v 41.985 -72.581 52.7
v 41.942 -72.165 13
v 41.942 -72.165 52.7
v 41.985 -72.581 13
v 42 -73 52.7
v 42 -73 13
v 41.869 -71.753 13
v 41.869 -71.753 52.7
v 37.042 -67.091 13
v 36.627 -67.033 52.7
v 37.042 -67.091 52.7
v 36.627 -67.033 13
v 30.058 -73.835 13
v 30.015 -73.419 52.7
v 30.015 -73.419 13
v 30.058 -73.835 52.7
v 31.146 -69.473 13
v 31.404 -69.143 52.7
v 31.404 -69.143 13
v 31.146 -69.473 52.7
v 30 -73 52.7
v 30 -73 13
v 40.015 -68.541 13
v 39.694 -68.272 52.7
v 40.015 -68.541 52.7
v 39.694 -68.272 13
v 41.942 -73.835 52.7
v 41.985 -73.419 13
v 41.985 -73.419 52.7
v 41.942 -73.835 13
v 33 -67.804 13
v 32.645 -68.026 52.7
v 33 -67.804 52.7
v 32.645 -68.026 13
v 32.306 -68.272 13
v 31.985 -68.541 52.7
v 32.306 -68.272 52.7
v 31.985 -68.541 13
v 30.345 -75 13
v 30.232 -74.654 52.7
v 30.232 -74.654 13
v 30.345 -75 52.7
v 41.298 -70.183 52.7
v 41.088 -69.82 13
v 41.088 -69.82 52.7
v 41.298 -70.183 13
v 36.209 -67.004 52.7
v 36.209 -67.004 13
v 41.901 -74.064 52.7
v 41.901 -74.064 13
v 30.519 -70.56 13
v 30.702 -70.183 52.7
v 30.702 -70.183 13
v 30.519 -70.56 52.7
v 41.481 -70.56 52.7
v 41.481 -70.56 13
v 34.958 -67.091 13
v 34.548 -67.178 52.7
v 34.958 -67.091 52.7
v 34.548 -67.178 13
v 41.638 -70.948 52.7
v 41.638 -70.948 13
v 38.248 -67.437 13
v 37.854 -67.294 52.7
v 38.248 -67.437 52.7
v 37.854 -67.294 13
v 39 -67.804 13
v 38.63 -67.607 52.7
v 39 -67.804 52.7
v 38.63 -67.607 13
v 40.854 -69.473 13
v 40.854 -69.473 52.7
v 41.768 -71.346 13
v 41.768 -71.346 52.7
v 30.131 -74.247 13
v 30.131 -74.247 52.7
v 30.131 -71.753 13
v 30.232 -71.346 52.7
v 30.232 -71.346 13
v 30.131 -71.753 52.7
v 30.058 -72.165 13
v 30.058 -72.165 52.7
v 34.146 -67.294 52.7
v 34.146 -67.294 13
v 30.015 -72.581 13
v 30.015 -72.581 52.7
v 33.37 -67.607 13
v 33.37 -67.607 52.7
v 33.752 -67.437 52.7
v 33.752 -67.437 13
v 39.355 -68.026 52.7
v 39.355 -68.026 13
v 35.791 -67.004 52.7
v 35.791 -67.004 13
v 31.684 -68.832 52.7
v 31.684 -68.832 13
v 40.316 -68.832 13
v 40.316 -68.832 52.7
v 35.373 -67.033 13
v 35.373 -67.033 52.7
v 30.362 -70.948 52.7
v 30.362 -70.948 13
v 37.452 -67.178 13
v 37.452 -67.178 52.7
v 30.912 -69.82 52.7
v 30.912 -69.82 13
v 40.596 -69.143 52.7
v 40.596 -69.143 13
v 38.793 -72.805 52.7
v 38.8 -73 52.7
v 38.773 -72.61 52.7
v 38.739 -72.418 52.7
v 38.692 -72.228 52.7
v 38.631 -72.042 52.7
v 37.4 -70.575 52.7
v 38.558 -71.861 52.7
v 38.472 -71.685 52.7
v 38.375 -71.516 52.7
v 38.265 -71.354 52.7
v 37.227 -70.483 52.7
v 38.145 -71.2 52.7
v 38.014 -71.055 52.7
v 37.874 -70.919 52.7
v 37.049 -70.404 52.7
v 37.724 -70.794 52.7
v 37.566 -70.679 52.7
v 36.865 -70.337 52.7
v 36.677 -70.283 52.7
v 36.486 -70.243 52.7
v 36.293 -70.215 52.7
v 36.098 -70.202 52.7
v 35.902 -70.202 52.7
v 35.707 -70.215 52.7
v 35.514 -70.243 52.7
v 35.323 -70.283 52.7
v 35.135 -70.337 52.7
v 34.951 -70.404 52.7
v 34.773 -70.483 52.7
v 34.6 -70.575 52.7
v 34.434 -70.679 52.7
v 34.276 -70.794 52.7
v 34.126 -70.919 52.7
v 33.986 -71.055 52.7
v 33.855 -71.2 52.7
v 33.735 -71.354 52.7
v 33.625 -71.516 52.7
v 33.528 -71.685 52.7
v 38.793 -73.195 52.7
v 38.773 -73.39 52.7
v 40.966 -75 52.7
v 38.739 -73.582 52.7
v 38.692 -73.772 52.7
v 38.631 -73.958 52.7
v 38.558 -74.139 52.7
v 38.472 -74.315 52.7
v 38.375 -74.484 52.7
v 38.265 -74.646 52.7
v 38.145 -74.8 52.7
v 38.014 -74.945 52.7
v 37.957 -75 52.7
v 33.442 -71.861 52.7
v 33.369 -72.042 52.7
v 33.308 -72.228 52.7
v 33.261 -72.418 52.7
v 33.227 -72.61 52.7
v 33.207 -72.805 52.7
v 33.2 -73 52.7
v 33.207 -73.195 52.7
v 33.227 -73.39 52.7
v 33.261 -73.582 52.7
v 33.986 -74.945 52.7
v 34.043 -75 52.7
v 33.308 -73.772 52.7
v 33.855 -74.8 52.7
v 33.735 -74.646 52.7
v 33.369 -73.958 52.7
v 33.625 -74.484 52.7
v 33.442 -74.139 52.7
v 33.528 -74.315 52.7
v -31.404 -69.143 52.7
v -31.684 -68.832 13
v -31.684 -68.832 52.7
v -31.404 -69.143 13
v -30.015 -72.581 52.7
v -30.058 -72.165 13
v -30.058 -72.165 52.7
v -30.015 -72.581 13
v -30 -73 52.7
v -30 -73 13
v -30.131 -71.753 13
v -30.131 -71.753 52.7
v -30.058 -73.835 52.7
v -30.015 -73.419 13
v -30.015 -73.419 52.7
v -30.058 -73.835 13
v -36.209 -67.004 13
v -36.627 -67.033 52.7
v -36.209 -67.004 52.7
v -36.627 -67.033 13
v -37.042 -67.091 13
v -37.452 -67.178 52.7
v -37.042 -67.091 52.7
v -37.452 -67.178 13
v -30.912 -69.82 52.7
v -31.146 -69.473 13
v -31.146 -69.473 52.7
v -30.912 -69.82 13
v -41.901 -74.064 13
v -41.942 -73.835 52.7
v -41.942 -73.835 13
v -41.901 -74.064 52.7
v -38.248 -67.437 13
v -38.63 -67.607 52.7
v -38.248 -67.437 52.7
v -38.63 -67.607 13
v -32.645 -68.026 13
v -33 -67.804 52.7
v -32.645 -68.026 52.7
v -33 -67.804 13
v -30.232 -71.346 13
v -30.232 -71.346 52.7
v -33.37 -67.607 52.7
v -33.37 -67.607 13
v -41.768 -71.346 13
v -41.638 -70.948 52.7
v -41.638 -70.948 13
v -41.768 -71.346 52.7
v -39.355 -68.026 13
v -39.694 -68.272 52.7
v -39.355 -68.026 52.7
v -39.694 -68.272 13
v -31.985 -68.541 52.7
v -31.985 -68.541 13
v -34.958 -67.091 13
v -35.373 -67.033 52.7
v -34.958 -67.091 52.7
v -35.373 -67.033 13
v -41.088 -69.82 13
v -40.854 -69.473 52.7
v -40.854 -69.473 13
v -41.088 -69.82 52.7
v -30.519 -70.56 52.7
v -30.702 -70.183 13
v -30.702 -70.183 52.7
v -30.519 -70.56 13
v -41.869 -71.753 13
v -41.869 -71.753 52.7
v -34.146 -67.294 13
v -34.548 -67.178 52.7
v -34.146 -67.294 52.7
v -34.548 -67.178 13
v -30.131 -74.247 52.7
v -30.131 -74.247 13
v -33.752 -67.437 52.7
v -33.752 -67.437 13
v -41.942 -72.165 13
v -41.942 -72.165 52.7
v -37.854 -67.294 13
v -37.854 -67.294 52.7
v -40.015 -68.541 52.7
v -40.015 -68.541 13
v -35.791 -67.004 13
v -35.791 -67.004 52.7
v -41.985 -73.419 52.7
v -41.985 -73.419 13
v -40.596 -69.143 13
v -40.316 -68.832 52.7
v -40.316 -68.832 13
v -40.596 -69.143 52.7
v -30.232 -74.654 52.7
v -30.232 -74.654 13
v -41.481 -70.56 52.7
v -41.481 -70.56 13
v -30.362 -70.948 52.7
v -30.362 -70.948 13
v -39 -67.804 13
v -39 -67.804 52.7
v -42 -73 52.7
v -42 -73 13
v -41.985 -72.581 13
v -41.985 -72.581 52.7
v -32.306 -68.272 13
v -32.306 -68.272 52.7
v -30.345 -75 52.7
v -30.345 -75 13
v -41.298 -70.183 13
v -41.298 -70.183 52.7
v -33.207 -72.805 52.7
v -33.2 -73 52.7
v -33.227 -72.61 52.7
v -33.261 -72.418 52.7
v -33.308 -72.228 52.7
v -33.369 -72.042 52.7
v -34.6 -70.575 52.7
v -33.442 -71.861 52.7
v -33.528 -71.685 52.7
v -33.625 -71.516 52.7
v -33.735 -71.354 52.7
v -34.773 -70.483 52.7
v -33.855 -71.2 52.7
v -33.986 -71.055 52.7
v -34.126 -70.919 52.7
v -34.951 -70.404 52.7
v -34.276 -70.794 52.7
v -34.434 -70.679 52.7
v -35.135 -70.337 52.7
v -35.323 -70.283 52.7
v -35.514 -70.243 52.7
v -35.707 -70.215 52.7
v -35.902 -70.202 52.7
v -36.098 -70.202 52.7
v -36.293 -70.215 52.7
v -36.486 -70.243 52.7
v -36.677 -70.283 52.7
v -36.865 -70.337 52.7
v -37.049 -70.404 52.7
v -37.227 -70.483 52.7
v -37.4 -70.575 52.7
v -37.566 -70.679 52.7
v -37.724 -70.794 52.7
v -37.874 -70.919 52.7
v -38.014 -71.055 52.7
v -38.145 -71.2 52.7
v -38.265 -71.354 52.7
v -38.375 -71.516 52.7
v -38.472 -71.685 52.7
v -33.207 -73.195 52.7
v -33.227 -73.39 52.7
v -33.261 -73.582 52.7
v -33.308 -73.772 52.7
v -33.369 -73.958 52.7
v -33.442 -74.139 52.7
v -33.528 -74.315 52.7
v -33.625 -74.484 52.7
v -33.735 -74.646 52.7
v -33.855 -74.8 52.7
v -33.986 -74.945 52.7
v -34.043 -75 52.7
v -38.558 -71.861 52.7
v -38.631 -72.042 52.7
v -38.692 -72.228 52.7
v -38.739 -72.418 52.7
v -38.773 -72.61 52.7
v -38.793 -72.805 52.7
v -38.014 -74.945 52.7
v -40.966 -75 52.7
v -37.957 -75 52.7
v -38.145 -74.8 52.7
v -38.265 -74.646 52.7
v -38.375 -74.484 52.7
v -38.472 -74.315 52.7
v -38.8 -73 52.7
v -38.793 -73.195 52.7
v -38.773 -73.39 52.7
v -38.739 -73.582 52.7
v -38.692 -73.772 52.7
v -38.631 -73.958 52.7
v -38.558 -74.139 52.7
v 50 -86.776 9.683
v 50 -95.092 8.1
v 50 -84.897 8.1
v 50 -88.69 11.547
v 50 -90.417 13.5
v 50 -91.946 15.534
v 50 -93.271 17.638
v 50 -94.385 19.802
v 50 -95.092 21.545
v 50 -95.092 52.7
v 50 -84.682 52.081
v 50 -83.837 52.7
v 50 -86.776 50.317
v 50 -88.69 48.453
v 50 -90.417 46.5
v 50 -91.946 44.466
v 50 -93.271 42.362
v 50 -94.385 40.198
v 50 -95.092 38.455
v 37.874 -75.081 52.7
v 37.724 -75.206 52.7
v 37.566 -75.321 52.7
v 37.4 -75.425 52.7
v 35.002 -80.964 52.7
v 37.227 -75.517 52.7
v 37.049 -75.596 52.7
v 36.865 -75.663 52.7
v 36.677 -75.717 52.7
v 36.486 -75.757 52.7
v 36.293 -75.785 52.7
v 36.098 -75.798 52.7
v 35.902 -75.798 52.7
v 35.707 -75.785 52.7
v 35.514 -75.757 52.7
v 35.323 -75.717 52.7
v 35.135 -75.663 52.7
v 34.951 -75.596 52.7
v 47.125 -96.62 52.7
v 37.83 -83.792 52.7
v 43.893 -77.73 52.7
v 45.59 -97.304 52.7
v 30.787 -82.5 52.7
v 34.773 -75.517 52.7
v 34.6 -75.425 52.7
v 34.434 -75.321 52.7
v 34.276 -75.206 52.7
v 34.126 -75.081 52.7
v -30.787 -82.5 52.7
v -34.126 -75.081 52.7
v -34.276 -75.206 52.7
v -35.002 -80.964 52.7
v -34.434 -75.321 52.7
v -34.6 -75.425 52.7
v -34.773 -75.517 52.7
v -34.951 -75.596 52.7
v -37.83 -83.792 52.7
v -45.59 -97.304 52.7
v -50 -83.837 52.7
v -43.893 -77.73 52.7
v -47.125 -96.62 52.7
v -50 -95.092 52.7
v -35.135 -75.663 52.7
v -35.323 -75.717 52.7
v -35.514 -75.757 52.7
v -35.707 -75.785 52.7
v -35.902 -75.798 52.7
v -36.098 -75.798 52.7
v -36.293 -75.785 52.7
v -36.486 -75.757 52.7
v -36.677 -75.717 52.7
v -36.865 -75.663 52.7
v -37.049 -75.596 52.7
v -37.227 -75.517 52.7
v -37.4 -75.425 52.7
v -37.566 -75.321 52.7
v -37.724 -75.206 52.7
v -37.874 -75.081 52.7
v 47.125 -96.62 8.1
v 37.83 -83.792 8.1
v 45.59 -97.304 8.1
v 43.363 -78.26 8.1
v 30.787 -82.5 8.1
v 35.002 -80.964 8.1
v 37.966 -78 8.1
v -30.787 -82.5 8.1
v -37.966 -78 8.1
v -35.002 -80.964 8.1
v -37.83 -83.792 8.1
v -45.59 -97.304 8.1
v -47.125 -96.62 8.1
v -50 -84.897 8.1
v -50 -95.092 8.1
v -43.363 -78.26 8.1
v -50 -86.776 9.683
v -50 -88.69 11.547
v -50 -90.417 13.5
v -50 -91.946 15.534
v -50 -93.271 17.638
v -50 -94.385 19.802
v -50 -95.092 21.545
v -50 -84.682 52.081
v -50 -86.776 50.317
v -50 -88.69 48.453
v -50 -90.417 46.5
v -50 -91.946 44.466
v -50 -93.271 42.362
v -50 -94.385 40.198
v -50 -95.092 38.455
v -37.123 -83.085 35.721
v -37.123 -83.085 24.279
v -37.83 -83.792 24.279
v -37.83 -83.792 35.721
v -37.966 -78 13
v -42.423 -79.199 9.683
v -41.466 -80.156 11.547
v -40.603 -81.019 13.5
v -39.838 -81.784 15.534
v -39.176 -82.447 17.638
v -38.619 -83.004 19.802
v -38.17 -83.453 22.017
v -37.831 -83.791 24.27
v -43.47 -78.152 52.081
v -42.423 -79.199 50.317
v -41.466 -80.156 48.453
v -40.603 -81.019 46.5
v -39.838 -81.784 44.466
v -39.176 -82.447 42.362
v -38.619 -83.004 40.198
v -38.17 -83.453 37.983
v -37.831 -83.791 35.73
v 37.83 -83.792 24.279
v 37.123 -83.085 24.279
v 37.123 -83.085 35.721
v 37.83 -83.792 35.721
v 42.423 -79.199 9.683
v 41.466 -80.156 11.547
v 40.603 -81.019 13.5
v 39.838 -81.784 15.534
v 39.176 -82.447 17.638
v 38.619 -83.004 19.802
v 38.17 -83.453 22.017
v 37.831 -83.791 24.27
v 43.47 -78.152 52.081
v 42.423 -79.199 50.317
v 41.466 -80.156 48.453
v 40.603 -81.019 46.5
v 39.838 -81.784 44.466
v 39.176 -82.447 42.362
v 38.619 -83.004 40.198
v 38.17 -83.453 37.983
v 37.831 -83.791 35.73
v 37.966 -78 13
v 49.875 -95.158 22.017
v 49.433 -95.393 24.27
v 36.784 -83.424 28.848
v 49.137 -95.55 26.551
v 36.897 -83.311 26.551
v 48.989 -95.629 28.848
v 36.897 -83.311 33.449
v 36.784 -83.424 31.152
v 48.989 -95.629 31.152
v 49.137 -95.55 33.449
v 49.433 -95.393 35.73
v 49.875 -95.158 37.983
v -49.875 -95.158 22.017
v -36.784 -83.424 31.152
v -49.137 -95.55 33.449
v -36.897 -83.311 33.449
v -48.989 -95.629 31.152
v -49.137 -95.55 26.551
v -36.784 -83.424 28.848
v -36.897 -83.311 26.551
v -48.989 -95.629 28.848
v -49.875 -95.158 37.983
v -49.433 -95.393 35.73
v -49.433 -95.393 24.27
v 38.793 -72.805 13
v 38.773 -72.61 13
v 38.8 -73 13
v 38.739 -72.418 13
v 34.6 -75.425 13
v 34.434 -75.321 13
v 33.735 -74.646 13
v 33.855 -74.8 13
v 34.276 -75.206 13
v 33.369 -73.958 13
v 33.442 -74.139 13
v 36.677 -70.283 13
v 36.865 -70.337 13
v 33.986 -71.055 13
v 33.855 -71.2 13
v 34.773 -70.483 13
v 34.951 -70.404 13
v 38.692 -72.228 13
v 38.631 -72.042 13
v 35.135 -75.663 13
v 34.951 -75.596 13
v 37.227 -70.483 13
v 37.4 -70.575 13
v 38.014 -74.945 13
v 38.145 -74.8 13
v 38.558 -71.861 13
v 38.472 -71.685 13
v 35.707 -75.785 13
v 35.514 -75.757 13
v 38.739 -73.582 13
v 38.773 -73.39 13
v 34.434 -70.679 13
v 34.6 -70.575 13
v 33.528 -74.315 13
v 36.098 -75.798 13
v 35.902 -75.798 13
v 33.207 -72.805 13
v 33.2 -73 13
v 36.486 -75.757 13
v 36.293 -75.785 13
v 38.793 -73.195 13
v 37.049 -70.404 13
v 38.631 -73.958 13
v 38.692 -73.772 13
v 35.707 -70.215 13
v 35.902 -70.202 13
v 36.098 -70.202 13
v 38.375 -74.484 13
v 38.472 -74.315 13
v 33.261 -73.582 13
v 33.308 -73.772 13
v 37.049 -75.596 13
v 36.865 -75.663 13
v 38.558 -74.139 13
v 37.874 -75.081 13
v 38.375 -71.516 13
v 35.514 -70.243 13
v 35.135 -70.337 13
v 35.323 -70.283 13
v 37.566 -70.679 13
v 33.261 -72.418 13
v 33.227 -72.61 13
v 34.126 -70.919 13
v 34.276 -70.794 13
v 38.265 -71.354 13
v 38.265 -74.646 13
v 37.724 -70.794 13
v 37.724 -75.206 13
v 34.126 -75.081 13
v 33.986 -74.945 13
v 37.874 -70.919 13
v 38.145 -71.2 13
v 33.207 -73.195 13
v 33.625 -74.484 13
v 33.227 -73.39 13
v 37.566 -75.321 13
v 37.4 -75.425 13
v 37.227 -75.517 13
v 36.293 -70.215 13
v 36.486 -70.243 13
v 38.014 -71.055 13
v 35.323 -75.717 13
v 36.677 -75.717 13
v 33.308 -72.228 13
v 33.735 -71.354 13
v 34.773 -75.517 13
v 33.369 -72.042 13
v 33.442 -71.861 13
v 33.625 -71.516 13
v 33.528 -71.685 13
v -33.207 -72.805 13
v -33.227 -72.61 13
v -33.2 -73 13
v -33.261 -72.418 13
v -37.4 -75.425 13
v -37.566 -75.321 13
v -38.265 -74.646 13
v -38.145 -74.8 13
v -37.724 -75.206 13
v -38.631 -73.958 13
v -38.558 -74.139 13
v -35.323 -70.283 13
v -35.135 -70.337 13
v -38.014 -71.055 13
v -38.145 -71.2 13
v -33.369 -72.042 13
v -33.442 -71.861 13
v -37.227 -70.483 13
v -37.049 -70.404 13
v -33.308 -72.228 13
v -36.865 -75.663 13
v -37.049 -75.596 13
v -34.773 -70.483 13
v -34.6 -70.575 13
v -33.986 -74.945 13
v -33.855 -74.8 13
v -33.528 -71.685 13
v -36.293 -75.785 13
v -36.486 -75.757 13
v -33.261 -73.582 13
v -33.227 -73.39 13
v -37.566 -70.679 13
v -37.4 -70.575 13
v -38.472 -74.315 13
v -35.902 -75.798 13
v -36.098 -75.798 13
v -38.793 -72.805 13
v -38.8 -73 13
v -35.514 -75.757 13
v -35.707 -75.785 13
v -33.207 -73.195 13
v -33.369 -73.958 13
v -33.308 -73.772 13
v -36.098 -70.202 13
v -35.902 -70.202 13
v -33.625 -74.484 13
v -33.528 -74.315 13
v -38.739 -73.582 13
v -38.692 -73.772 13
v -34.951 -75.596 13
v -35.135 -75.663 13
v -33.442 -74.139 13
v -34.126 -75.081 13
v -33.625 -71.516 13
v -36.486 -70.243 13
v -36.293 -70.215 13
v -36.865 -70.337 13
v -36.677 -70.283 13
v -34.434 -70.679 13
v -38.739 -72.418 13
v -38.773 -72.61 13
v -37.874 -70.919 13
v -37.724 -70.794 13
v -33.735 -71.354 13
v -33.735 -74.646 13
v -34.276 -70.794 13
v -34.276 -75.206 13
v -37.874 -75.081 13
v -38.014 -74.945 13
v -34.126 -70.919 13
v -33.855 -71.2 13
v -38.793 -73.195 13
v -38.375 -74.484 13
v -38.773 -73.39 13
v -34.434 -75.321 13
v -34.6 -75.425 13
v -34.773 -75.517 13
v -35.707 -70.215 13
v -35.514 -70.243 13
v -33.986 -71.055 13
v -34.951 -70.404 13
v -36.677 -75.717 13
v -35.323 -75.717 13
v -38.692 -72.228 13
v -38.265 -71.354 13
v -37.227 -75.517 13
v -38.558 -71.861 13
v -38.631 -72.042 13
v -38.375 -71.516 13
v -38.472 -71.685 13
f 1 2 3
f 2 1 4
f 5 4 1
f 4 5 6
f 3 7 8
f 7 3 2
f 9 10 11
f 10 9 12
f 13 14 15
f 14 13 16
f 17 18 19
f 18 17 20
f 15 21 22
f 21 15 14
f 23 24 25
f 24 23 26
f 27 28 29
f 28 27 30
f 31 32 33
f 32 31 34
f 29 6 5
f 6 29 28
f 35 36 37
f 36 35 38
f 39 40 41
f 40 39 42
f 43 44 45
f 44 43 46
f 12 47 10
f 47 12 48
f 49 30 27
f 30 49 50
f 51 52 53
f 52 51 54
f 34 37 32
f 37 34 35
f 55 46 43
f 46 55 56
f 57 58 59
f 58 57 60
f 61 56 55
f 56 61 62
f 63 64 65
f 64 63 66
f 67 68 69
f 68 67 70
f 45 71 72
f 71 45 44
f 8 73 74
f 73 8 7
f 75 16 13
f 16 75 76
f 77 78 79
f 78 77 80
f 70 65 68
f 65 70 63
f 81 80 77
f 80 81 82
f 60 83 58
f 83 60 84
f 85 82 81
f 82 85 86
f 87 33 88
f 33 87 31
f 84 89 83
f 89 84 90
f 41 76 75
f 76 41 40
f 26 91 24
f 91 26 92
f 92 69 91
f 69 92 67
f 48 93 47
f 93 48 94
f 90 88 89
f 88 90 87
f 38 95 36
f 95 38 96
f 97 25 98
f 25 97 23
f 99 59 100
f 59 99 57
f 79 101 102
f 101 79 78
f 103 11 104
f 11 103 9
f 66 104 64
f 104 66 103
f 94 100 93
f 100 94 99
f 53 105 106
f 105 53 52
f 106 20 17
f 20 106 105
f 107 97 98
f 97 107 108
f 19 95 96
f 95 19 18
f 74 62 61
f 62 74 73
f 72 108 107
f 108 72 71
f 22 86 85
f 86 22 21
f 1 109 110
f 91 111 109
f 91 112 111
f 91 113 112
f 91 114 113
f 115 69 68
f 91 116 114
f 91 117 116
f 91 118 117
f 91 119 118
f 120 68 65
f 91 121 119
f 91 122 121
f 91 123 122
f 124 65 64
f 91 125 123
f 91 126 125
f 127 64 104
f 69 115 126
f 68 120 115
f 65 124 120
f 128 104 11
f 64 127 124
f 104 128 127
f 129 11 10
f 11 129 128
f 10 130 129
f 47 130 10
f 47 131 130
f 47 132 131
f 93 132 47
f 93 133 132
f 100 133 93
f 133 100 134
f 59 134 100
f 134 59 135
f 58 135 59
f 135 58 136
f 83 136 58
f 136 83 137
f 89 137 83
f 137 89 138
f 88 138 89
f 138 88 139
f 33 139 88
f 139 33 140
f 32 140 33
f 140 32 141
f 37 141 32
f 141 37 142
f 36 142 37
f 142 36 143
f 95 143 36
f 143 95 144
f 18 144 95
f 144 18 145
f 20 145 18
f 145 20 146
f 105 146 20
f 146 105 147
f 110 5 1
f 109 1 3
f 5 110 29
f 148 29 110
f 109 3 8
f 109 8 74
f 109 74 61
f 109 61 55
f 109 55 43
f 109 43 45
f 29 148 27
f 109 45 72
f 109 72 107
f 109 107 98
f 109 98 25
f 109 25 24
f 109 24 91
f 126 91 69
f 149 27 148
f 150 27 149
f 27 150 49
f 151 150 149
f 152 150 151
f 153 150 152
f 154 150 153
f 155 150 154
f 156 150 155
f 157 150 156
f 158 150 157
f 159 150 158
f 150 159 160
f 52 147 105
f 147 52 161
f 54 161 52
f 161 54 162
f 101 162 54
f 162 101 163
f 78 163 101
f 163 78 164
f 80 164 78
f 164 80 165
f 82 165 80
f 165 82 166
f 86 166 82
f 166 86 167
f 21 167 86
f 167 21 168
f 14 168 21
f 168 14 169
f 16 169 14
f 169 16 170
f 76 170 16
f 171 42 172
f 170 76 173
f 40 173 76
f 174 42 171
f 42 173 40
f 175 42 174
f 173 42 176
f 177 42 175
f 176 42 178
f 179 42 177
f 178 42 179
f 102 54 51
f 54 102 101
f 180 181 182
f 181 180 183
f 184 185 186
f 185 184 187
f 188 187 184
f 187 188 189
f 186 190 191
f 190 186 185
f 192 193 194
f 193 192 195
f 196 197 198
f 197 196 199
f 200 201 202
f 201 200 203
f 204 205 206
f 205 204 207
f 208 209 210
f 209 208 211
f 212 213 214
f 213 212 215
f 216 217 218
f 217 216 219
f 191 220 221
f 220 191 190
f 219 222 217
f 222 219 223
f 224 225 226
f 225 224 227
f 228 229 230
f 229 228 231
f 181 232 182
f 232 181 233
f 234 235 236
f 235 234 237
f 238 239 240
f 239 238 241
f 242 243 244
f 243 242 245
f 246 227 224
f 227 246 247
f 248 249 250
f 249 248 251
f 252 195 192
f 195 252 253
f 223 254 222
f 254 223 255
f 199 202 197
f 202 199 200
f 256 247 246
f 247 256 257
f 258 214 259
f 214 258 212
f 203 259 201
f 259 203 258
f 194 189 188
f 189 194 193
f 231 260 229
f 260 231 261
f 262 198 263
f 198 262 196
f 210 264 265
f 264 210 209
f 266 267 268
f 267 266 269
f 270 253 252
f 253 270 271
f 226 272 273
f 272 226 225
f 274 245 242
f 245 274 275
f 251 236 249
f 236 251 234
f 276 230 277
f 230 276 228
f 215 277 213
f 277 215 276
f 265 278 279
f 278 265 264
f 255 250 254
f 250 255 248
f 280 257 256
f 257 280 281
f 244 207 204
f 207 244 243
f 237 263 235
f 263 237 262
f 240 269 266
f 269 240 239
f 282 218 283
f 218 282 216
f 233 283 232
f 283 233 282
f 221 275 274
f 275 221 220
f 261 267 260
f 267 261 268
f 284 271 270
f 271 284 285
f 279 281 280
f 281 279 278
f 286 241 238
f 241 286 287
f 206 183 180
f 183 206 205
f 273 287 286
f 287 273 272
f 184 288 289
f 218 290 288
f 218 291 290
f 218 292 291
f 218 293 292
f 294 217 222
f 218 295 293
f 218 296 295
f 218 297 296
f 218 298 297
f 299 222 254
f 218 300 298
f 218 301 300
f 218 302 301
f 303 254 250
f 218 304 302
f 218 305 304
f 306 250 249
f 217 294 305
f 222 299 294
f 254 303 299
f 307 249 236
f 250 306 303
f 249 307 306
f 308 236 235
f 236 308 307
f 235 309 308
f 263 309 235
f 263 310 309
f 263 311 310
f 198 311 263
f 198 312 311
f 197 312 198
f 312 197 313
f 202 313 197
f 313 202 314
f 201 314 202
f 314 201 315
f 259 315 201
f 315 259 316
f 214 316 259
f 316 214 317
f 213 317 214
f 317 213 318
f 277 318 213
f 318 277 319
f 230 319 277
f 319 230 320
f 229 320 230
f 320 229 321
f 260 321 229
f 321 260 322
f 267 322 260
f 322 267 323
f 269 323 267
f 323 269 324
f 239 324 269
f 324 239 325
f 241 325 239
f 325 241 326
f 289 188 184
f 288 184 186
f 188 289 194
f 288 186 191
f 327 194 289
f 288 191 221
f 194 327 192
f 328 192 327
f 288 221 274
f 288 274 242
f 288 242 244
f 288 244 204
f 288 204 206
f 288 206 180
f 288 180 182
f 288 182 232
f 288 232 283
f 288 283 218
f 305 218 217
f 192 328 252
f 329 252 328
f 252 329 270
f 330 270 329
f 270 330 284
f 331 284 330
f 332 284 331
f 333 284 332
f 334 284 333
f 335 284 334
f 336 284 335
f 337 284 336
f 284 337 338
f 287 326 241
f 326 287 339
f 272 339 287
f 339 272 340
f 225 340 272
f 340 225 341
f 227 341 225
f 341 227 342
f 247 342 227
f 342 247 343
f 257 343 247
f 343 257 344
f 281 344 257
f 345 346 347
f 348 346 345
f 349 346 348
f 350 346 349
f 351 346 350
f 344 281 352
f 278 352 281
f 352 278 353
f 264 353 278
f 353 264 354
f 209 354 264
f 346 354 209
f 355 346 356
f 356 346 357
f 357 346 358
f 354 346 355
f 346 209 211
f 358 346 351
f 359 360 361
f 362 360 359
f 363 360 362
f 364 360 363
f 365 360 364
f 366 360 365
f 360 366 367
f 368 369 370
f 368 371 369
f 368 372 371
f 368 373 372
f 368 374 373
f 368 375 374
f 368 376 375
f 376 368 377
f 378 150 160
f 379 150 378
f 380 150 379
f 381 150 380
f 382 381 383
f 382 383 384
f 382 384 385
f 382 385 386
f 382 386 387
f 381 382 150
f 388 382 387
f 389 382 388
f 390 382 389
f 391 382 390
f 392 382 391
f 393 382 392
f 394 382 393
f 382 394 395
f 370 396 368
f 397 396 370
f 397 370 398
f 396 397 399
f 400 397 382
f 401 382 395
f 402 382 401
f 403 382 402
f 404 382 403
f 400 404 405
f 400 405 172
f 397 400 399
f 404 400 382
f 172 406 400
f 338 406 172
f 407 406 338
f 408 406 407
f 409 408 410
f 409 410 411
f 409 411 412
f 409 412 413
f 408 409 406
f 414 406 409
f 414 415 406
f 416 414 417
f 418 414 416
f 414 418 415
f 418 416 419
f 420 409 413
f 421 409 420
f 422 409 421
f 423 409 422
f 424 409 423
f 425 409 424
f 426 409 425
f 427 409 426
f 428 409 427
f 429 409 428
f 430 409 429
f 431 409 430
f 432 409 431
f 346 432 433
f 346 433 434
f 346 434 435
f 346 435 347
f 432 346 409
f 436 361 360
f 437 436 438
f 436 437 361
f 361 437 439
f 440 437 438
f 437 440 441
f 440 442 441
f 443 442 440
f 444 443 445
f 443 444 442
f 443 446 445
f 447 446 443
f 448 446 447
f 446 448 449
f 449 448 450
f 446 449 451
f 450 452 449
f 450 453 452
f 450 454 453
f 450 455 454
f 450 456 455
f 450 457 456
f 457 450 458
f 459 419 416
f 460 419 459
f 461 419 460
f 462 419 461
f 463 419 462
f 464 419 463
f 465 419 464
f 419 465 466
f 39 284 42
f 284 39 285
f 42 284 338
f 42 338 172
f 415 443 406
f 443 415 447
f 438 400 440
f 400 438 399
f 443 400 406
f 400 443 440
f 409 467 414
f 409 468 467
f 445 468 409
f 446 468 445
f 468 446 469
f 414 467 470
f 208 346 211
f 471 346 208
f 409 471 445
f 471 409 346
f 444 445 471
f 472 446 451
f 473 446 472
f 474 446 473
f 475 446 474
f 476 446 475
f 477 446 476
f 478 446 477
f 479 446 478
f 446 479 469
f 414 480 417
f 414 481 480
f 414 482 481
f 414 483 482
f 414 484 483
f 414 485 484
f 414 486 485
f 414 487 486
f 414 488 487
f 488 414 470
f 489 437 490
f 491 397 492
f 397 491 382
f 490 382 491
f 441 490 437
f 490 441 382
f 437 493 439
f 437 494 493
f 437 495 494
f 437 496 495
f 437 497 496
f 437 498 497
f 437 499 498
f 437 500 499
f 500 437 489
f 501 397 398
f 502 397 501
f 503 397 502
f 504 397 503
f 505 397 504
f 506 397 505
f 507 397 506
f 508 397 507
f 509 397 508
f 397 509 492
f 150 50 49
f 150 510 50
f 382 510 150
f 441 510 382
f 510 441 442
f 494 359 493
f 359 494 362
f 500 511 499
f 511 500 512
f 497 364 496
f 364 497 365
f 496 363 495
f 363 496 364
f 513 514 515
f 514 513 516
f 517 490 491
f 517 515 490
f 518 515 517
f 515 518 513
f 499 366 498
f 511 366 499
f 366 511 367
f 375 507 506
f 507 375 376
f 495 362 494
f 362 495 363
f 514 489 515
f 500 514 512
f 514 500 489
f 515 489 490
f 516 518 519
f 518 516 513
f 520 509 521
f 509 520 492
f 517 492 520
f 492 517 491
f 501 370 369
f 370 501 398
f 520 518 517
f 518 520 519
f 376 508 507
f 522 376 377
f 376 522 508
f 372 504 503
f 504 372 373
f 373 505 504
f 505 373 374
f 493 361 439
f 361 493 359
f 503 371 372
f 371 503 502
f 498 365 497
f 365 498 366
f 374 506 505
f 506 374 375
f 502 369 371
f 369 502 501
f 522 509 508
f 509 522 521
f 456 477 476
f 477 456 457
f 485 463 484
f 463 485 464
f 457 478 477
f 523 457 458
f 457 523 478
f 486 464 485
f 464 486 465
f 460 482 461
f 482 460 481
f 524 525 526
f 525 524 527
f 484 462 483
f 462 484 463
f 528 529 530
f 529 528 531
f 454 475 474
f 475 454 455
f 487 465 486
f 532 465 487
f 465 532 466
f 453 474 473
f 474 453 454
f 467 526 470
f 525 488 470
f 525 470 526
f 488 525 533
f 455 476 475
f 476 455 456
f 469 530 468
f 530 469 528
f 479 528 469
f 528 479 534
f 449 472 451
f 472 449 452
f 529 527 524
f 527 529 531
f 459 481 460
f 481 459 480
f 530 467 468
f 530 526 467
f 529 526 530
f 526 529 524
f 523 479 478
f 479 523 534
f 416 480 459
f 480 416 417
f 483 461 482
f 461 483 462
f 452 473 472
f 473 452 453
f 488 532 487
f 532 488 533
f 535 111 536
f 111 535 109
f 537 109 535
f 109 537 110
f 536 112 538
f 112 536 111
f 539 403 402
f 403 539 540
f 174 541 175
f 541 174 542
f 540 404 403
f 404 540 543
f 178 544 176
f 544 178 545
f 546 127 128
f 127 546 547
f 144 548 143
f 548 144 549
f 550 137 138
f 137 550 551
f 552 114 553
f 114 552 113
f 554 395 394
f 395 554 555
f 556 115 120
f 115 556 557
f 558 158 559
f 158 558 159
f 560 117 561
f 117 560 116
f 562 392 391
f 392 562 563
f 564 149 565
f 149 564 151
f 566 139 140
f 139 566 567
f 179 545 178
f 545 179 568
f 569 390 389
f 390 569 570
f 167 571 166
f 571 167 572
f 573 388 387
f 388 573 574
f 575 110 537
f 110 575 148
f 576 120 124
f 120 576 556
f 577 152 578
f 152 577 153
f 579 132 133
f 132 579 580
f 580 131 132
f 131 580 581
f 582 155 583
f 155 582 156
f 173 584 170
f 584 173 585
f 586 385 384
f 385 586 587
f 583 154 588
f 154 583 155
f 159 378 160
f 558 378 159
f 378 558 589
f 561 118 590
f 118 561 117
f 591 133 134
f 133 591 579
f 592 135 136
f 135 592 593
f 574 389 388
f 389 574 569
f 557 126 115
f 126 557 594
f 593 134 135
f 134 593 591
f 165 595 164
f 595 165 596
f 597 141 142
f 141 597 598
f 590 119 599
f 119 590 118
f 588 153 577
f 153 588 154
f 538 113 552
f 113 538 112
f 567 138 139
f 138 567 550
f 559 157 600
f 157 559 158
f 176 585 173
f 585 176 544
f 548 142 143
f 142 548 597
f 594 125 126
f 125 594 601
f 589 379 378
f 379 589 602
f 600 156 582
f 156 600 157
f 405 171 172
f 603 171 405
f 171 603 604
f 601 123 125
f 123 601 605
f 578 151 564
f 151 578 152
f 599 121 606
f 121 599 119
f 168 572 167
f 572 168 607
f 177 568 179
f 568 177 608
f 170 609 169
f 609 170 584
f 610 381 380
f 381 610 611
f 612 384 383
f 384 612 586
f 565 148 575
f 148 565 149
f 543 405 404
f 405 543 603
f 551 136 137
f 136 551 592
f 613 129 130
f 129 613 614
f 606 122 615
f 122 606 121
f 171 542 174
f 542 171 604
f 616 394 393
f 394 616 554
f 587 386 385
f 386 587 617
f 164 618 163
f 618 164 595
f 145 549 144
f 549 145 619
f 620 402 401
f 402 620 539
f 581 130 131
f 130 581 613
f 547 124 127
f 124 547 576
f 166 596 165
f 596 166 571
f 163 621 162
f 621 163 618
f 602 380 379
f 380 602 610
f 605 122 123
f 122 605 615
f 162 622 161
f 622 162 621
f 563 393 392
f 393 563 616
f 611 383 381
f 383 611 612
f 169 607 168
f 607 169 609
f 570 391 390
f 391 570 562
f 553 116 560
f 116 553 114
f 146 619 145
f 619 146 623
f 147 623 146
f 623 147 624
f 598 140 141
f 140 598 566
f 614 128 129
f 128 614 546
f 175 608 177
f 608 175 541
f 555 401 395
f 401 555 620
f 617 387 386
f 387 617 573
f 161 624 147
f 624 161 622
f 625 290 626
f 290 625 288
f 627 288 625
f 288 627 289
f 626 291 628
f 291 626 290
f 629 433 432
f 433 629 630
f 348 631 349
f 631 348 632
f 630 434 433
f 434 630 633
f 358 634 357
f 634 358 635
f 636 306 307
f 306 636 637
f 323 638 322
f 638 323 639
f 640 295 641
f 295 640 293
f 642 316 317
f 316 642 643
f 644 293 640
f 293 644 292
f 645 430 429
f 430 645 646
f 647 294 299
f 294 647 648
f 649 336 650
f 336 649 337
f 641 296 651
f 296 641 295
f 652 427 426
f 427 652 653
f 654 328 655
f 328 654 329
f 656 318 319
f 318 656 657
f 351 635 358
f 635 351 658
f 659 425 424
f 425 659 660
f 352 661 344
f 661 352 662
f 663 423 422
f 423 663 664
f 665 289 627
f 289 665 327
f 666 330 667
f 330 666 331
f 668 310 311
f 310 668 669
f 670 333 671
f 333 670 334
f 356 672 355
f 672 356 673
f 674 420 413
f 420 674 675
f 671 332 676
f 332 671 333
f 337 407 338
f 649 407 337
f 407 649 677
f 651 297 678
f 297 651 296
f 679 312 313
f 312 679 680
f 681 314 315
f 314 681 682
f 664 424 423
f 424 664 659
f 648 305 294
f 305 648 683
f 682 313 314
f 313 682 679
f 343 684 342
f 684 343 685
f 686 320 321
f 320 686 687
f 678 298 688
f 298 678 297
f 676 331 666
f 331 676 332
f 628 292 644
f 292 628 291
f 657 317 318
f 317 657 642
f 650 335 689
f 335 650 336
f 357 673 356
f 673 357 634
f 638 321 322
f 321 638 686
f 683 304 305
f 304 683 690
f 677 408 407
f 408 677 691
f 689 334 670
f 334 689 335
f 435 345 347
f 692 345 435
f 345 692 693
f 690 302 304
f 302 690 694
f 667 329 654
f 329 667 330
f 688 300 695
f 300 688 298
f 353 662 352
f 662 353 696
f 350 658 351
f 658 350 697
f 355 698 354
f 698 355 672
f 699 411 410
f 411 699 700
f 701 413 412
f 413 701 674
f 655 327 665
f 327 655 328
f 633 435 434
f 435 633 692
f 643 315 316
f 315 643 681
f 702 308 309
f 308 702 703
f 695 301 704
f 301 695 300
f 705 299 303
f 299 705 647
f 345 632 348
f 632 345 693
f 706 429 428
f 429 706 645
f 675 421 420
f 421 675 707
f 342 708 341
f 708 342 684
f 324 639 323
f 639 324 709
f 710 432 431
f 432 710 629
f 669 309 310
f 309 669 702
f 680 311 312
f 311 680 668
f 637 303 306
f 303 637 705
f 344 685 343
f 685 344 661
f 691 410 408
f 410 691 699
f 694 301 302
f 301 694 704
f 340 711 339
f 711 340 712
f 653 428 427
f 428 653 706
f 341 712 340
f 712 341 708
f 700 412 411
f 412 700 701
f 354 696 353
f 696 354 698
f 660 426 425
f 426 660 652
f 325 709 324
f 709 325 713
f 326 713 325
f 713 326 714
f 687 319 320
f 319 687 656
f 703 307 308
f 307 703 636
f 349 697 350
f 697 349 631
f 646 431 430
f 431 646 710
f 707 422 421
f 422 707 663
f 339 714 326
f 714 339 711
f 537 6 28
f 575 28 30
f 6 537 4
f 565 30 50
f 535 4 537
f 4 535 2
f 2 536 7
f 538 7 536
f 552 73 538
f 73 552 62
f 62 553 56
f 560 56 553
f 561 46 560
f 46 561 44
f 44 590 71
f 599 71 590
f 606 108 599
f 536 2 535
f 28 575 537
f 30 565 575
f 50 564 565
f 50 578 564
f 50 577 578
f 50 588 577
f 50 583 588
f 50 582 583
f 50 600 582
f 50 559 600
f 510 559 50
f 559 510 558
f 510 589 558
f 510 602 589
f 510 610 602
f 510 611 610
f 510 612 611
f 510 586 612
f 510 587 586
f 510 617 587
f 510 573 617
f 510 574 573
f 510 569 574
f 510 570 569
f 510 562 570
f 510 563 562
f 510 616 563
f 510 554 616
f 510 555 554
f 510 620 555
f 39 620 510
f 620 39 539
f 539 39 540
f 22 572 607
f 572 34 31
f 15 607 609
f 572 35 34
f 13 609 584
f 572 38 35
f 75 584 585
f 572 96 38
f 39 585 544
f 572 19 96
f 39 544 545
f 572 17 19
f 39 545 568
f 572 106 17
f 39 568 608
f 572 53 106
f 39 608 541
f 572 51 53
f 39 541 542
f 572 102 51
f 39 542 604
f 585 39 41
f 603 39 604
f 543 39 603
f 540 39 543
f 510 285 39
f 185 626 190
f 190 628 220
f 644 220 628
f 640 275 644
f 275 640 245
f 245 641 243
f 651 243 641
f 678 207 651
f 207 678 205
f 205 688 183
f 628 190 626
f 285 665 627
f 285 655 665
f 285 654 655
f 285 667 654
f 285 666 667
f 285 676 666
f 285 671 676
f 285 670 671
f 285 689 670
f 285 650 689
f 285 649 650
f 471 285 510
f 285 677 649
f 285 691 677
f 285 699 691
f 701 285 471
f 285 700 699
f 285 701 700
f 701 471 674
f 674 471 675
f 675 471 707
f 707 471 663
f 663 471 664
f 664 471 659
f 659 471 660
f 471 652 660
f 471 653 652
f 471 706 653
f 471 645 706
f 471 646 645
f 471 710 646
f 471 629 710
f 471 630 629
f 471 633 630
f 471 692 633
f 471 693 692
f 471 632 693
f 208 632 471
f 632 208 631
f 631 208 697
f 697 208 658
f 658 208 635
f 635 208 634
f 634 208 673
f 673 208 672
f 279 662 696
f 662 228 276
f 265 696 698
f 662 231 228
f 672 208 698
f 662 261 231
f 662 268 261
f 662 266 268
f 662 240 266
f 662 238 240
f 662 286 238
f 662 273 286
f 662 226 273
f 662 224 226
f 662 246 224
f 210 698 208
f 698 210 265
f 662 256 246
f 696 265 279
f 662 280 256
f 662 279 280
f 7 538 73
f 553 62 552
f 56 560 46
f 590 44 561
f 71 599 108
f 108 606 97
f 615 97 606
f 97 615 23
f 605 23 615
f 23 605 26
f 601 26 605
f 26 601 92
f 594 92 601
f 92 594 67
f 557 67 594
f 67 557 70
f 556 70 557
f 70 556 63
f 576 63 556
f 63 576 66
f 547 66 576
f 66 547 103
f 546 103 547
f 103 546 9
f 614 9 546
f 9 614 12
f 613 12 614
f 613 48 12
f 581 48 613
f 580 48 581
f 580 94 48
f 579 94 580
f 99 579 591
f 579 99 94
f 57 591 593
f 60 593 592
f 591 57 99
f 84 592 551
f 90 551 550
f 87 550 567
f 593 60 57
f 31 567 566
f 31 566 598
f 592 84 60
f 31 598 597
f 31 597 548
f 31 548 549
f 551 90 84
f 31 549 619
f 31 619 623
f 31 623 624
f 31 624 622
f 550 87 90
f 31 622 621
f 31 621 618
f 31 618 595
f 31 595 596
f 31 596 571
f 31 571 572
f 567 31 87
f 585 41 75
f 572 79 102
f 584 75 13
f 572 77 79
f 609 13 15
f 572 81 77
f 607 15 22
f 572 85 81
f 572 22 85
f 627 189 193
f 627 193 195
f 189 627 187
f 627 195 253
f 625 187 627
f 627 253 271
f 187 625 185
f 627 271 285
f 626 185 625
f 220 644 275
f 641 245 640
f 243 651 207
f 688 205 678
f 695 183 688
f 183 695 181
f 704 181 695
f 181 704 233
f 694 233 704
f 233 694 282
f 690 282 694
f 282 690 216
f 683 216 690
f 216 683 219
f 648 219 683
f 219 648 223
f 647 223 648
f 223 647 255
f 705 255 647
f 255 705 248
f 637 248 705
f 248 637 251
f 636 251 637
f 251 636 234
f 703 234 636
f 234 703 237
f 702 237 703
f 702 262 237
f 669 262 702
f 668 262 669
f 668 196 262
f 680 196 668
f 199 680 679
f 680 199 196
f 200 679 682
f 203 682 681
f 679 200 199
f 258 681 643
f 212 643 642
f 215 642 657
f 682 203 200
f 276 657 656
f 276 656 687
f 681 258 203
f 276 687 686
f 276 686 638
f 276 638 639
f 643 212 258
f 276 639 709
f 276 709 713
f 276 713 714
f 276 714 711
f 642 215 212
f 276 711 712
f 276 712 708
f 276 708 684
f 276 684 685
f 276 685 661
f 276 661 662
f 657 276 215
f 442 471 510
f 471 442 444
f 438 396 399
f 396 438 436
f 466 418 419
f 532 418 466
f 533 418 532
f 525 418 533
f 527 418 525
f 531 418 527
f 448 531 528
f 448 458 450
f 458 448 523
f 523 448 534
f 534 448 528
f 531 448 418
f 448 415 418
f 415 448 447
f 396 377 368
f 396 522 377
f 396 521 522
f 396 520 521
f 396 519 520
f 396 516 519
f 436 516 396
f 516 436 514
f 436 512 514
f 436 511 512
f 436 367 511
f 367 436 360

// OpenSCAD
// file: kicker.scad
$fn = 90;

module kicker_holes(
    hole_d = 3.3,
    hole_height = 200,
    body_width = 38.7,
    hole_x_offsets = [0, -22],
    hole_y_offsets = [7, -7],
    hole_x_shift = 12
) {
    rotate([0, 0, -90])
        translate([-body_width / 2, 0, 0])
            for (y = hole_y_offsets)
                for (x = hole_x_offsets) {
                    translate([x + body_width / 2 - hole_x_shift, y, 0])
                        cylinder(d = hole_d, h = hole_height, center = true);
                }
}

module kicker(
    body_size = [38.7, 26, 20],
    pin_d = 3,
    pin_h = 19.6 - 13,
    hole_d = 3.3,
    hole_height = 200,
    hole_x_offsets = [0, -22],
    hole_y_offsets = [7, -7],
    hole_x_shift = 12
) {
    rotate([0, 0, -90])
        translate([-body_size[0] / 2, 0, 0])
            difference() {
                union() {
                    cube(body_size, center = true);
                    translate([body_size[0] / 2, 0, 0])
                        rotate([0, 90, 0])
                            cylinder(h = pin_h, d = pin_d);
                }
                rotate([0, 0, 90])
                    kicker_holes(
                        hole_d = hole_d,
                        hole_height = hole_height,
                        body_width = body_size[0],
                        hole_x_offsets = hole_x_offsets,
                        hole_y_offsets = hole_y_offsets,
                        hole_x_shift = hole_x_shift
                    );
            }
}

module kicker_cutout(
    cutout_offset = [0, -76.5, 23.15],
    cutout_size = [55, 12, 20 - 0.4],
    hole_d = 3.3,
    hole_h = 30,
    slot_size = [5.5, 3.1, 15],
    slot_offset = [0, 2, 8],
    hex_d = 6.3,
    hex_h = 3.1,
    hex_offset = [0, 2, 0],
    hex_rotation = [90, 30, 0],
    relief_offset = [70, 20, 0],
    relief_scale = [3, 1, 1],
    relief_d = 50,
    relief_h = 100
) {
    translate(cutout_offset)
        difference() {
            cube(cutout_size, center = true);
            rotate([90, 0, 0])
                cylinder(d = hole_d, h = hole_h, center = true);
            translate(slot_offset)
                cube(slot_size, center = true);
            translate(hex_offset)
                rotate(hex_rotation)
                    cylinder(h = hex_h, d = hex_d, center = true, $fn = 6);
            for (dir = [1, -1]) {
                translate([dir * relief_offset[0], relief_offset[1], relief_offset[2]])
                    scale(relief_scale)
                        cylinder(h = relief_h, d = relief_d, center = true);
            }
        }
}

kicker();
// file: motor_driver_bracket.scad
$fn = 90;

module motor_driver_board(
    board_size = [51, 25, 2],
    pin_width = 2.55,
    pin_tail_width = 0.65,
    pin_offsets = [0, 47 - 2.55],
    pin_body_z = -2,
    pin_tail_z = -6,
    pin_tail_h = 6,
    connector_size = [30, 7.8, 10],
    connector_offset = [8.7 + 30 / 2 - 51 / 2, 7.8 / 2 - 25 / 2 - 0.4, 6],
    connector_hole_d = 3.6,
    connector_hole_h = 3.5,
    connector_hole_spacing = 5,
    connector_hole_count = 6,
    connector_hole_z = -8.75
) {
    cube(board_size, center = true);
    for (offset = pin_offsets) {
        translate([offset - board_size[0] / 2 + pin_width / 2, 0, pin_body_z]) {
            cube([pin_width, board_size[1], board_size[2]], center = true);
        }
        translate([offset - board_size[0] / 2 + pin_width / 2, 0, pin_tail_z]) {
            cube([pin_tail_width, board_size[1], pin_tail_h], center = true);
        }
    }
    translate(connector_offset) {
        cube(connector_size, center = true);
        for (idx = [0:1:connector_hole_count - 1]) {
            translate([connector_size[0] / 2 - 2.5 - connector_hole_spacing * idx, 0, connector_hole_z])
                cylinder(d = connector_hole_d, h = connector_hole_h, center = true);
        }
    }
}

module motor_driver_bracket(
    board_size = [51, 25, 2],
    bracket_clearance = 10,
    bracket_z = -2,
    mount_post_d = 10,
    mount_post_h = 2,
    mount_post_positions = [[0, 17], [30, -10], [-30, -10]],
    pin_width = 2.55,
    pin_clearance = 0.6,
    pin_offsets = [0, 47 - 2.55],
    pin_clearance_z = -2,
    pin_clearance_h = 3,
    connector_size = [30, 7.8, 10],
    connector_offset = [8.7 + 30 / 2 - 51 / 2, 7.8 / 2 - 25 / 2 - 0.4, 6],
    connector_hole_d = 3.6,
    connector_hole_h = 3.5,
    connector_hole_spacing = 5,
    connector_hole_count = 6,
    connector_hole_clearance = 4,
    connector_hole_z = -8,
    mount_hole_d = 3.3,
    mount_hole_h = 100
) {
    difference() {
        union() {
            for (pos = mount_post_positions) {
                translate([pos[0], pos[1], bracket_z])
                    cylinder(d = mount_post_d, h = mount_post_h, center = true);
            }
            translate([0, 0, bracket_z])
                cube([board_size[0] + bracket_clearance, board_size[1] + bracket_clearance, board_size[2]], center = true);
        }

        for (offset = pin_offsets) {
            translate([offset - board_size[0] / 2 + pin_width / 2, 0, pin_clearance_z]) {
                cube(
                    [pin_width + pin_clearance, board_size[1] + pin_clearance, board_size[2] + pin_clearance_h],
                    center = true
                );
            }
        }
        translate(connector_offset) {
            cube(connector_size, center = true);
            for (idx = [0:1:connector_hole_count - 1]) {
                translate([connector_size[0] / 2 - 2.5 - connector_hole_spacing * idx, 0, connector_hole_z])
                    cylinder(d = connector_hole_d + connector_hole_clearance, h = connector_hole_h, center = true);
            }
        }
        for (pos = mount_post_positions) {
            translate([pos[0], pos[1], bracket_z])
                cylinder(d = mount_hole_d, h = mount_hole_h, center = true);
        }
    }
}

module motor_driver_brackets(
    positions = [[0, 75, 30], [0, 75, 45]]
) {
    for (pos = positions) {
        translate(pos)
            motor_driver_bracket();
    }
}

module motor_driver_bracket_holes(
    hole_d = 3.3,
    hole_h = 200,
    mount_post_positions = [[0, 17], [30, -10], [-30, -10]],
    hole_z = 100,
    y_offset = 75
) {
    for (pos = mount_post_positions) {
        translate([pos[0], pos[1] + y_offset, hole_z])
            cylinder(d = hole_d, h = hole_h, center = true);
    }
}

motor_driver_bracket();
// file: motor_bracket.scad
$fn = 90;

module wheel_connector(
    wheel_d = 55,
    wheel_offset = 90,
    wheel_angles = [0:90:359],
    wheel_rotation = 45,
    connector_h = 5,
    connector_d = 17.5,
    axle_hole_d = 3.5,
    axle_hole_h = 10
) {
    rotate([0, 0, wheel_rotation])
        translate([0, 0, wheel_d / 2])
            for (angle = wheel_angles) {
                rotate([angle, 90, 0])
                    translate([0, 0, wheel_offset - connector_h / 2]) {
                        difference() {
                            cylinder(h = connector_h, d = connector_d, center = true);
                            cylinder(h = axle_hole_h, d = axle_hole_d, center = true);
                        }
                    }
            }
}

module motor_bracket_holes(
    hole_d = 3.3,
    hole_h = 100,
    holes = [0:1:6],
    hole_set = 6.35,
    hole_offset = 6.4,
    wheel_offset = 90,
    wheel_angles = [0:90:359],
    rotation_offset = 45
) {
    for (angle = wheel_angles) {
        rotate([0, 0, angle + rotation_offset])
            translate([wheel_offset - 5, 0, 0]) {
                for (hole_idx = holes) {
                    rotate([0, 0, 180])
                        translate([hole_idx * hole_set + hole_offset, 0, 0])
                            cylinder(d = hole_d, h = hole_h, center = true);
                }
            }
    }
}

module motor_bracket(
    width = 25,
    thickness = 2,
    height = 27,
    length = 52,
    num_holes = 7,
    hole_set = 6.35,
    shaft_hole_d = 7.5,
    mount_hole_d = 3.3,
    mount_hole_h = 100,
    mount_offset = 8.5,
    mount_span = 14.5,
    slot_size = [20, 30, 25],
    slot_offset = [0, 0, 27],
    slot_clear_d = 25,
    slot_clear_offset = [0, 0, 14.5],
    side_hole_span = 21.7,
    side_slot_size = [3.3, 4, 100],
    side_slot_offset = 2
) {
    rotate([0, 0, 180])
        translate([0, 0, -14.5])
            difference() {
                union() {
                    translate([length / 2, 0, thickness / 2])
                        cube([length, width, thickness], center = true);
                    translate([thickness / 2, 0, height / 2])
                        cube([thickness, width, height], center = true);
                }
                for (dir = [-1, 1]) {
                    rotate([0, 90, 0])
                        translate([dir * mount_offset - mount_span, 0, 0])
                            cylinder(d = mount_hole_d, h = mount_hole_h, center = true);
                    rotate([90, 0, 90])
                        translate([dir * mount_offset, mount_span, 0])
                            cylinder(d = mount_hole_d, h = mount_hole_h, center = true);
                }
                translate(slot_clear_offset)
                    rotate([0, 90, 0])
                        cylinder(d = shaft_hole_d, h = mount_hole_h, center = true);
                difference() {
                    translate(slot_offset)
                        cube(slot_size, center = true);
                    translate(slot_clear_offset)
                        rotate([0, 90, 0])
                            cylinder(d = slot_clear_d, h = mount_hole_h, center = true);
                }
                for (idx = [0:1:num_holes - 1]) {
                    translate([idx * hole_set + 6.4, 0, 0])
                        cylinder(d = mount_hole_d, h = mount_hole_h, center = true);
                }
                for (idx = [0:1:num_holes - 2]) {
                    for (dir = [1, -1]) {
                        translate([idx * hole_set + 9.5, dir * side_hole_span / 2, 0]) {
                            cylinder(d = mount_hole_d, h = mount_hole_h, center = true);
                            translate([0, dir * side_slot_offset, 0])
                                cube(side_slot_size, center = true);
                        }
                    }
                }
            }
}

module motors(
    wheel_d = 55,
    wheel_offset = 90,
    wheel_angles = [0:90:359],
    wheel_rotation = 45,
    motor_length = 17,
    motor_body_d = 24.4,
    motor_body_extension = 30.8,
    shaft_d = 7,
    shaft_h = 2.5,
    tip_d = 4,
    tip_h = 10,
    mount_hole_d = 3.3,
    mount_offset = 8.5
) {
    translate([0, 0, wheel_d / 2])
        for (angle = wheel_angles) {
            rotate([angle, 90, wheel_rotation])
                translate([0, 0, wheel_offset - 3]) {
                    difference() {
                        union() {
                            translate([0, 0, -(motor_length + motor_body_extension) / 2 - shaft_h / 2 - tip_h / 2])
                                cylinder(h = motor_length + motor_body_extension, d = motor_body_d, center = true);
                            translate([0, 0, -shaft_h / 2 - tip_h / 2])
                                cylinder(h = shaft_h, d = shaft_d, center = true);
                            translate([0, 0, -tip_h / 2])
                                cylinder(h = tip_h, d = tip_d);
                        }
                        for (dir = [-1, 1]) {
                            translate([0, dir * mount_offset, -tip_h])
                                cylinder(d = mount_hole_d, h = tip_h);
                        }
                    }
                }
        }
}

module motor_brackets_all(
    wheel_d = 55,
    wheel_offset = 90,
    wheel_angles = [0:90:359],
    rotation = 0
) {
    translate([0, 0, wheel_d / 2])
        for (angle = wheel_angles) {
            rotate([0, rotation, angle + 45])
                translate([wheel_offset - 5, 0, 0])
                    motor_bracket();
        }
}

module motor_brackets_holders(
    length = 52,
    width = 25,
    holder_h = 11,
    wheel_angles = [45:90:359]
) {
    difference() {
        for (angle = wheel_angles) {
            rotate([0, 0, angle])
                translate([59, 0, 0])
                    cube([length, width, holder_h], center = true);
        }
        motor_bracket_holes();
    }
}

motor_bracket();
// file: wheels.scad
$fn = 90;

module wheels(
    wheel_d = 60,
    wheel_h = 12.5,
    wheel_offset = 90,
    wheel_z_offset = 55 / 2,
    axle_hole_d = 3.5,
    axle_hole_h = 10,
    wheel_rotation = 45,
    wheel_angles = [0:90:359]
) {
    translate([0, 0, wheel_z_offset])
        for (angle = wheel_angles) {
            rotate([angle, 90, wheel_rotation])
                translate([0, 0, wheel_offset]) {
                    difference() {
                        cylinder(wheel_h, d = wheel_d);
                        cylinder(h = axle_hole_h, d = axle_hole_d, center = true);
                    }
                }
        }
}

module wheels_cutout(
    wheel_offset = 90,
    cutout_side = 45,
    cutout_height = 100,
    corner_offset = 4,
    rotation_offset = 360 / 16,
    angles = [45, 135, 225, 315]
) {
    for (angle = angles) {
        rotate([0, 0, angle]) {
            outer_d = cutout_side / sin(180 / 8);
            inner_d = cutout_side / tan(180 / 8);
            translate([wheel_offset + inner_d / 2 - corner_offset, 0, 0]) {
                rotate([0, 0, rotation_offset])
                    cylinder(cutout_height, d = outer_d, $fn = 8);
            }
        }
    }
}

wheels();
// file: robot_shared.scad
$fn = 90;


module platform_connection_holes(
    diameter = 3.3,
    height = 500,
    start_angle = 247.5,
    end_angle = 472.5,
    angle_step = 45,
    inner_offset = 90,
    outer_offset = 100
) {
    for (angle = [start_angle:angle_step:end_angle]) {
        if (angle > 320 && angle < 400) {
            rotate([0, 0, angle])
                translate([0, outer_offset, 0])
                    cylinder(d = diameter, h = height, center = true);
        } else {
            rotate([0, 0, angle])
                translate([0, inner_offset, 0])
                    cylinder(d = diameter, h = height, center = true);
        }
    }
}
// file: bottom_part.scad
$fn = 90;

use <ball_zone.scad>;
use <robot_shared.scad>;
use <wheels.scad>;
use <motor_bracket.scad>;
use <motor_driver_bracket.scad>;
use <kicker.scad>;

module led_holes(diode_d = 9, height = 10, ring_radius = 45, angles = [0:15:359]) {
    for (angle = angles) {
        rotate([0, 0, angle])
            translate([0, ring_radius, 0])
                cylinder(d = diode_d, h = height, center = true);
    }
}

module bottom_part(
    robot_d = 215,
    wheel_d = 60,
    wheel_h = 12.5,
    wheel_offset = 90
) {
    intersection() {
        translate([0, 12, 0])
            rotate([0, 0, 0])
                cube([180, 180, 200], center = true);
        difference() {
            translate([0, 0, 12])
                union() {
                    cylinder(d = robot_d, h = 2, center = true);
                    for (dir = [1, -1]) {
                        translate([dir * 72, 0, 10])
                            cube([30, 39, 20], center = true);
                    }
                    difference() {
                        translate([0, 0, -4])
                            cylinder(d = robot_d, h = 4);
                    }
                }
            translate([0, 0, 10])
                led_holes();
            difference() {
                translate([0, 0, 0])
                    cylinder(d = 80, h = 200, center = true);
                translate([0, 0, 7])
                    difference() {
                        for (dir = [1, -1]) {
                            translate([dir * 42, 0, 1.5])
                                cube([20, 15, 3], center = true);
                            translate([0, dir * 35, 1.5])
                                cube([15, 20, 3], center = true);
                        }
                        for (dir = [1, -1]) {
                            translate([dir * 37, 0, 0])
                                cylinder(d = 3.3, h = 100, center = true);
                            translate([0, dir * 30, 0])
                                cylinder(d = 3.3, h = 100, center = true);
                        }
                    }
            }
            translate([0, 0, 14.5])
                cylinder(d = 100, h = 10, center = true);
            platform_connection_holes();
            for (dir = [1, -1]) {
                translate([dir * 55, 0, -1])
                    cylinder(d = 3.3, h = 100, center = true);
            }
            wheels_cutout(wheel_offset = wheel_offset);
            motor_bracket_holes(wheel_offset = wheel_offset);
            translate([0, 0, 8])
                motor_bracket_holes(hole_d = 8, hole_h = 4, holes = [0:1:4], wheel_offset = wheel_offset);
            motor_driver_bracket_holes();
            ball_zone_holes();
            translate([0, -70, 23.1])
                kicker_holes();
            for (dir = [1, -1]) {
                translate([dir * 72, 0, 25])
                    cube([26, 35, 25], center = true);
            }
        }
    }
}

bottom_part();
// main file
$fn = 90;

use <bottom_part.scad>;
use <robot_shared.scad>;


module ball_zone_holes(
    diameter = 3.3,
    height = 300,
    hole_offset = [36, -73, 100]
) {
    for (dir = [1, -1]) {
        translate([dir * hole_offset[0], hole_offset[1], hole_offset[2]])
            cylinder(d = diameter, h = height, center = true);
    }
}

module ball_zone_cutout(
    robot_d = 215,
    cutout_size = [100, 30, 100],
    cutout_offset = [0, 0, 0],
    relief_size = [80, 30, 100],
    relief_offset = [37, 30, 0],
    relief_rotation = 45
) {
    translate([cutout_offset[0], -robot_d / 2 + 10, cutout_offset[2]])
        difference() {
            cube(cutout_size, center = true);
            for (dir = [1, -1]) {
                translate([-dir * relief_offset[0], relief_offset[1], relief_offset[2]])
                    rotate([0, 0, relief_rotation * dir])
                        cube(relief_size, center = true);
            }
        }
}

module ball_zone(
    robot_d = 215,
    robot_h = 220,
    wheel_d = 60,
    wheel_h = 12.5,
    wheel_offset = 90,
    zone_z = 33
) {
    intersection() {
        cylinder(d = robot_d, h = robot_h);
        translate([0, 0, zone_z]) {
            difference() {
                union() {
                    translate([0, -90, -2.6])
                        cube([100, 30, 45 - 0.4], center = true);
                    translate([0, 0, -100 - 0.2])
                        ball_zone_holes(12, 40 - 0.2);
                }
                translate([0, -106.713, 0])
                    cube([110, 10, 100], center = true);
                ball_zone_cutout(robot_d = robot_d);
                for (angle = [45:90:360]) {
                    rotate([0, 0, angle])
                        translate([0, 84, 0])
                            cube([65, 4, 80], center = true);
                }
                translate([0, 0, -33]) {
                    translate([0, 0, wheel_d / 2])
                        for (angle = [0:90:359]) {
                            rotate([angle, 90, 45])
                                translate([0, 0, wheel_offset - 5])
                                    cylinder(wheel_h + 10, d = wheel_d + 6);
                        }
                }
                ball_zone_holes(5.6);
                translate([0, 12, -22.5]) {
                    cube([180, 180, 5], center = true);
                }
            }
        }
    }
}


ball_zone();
